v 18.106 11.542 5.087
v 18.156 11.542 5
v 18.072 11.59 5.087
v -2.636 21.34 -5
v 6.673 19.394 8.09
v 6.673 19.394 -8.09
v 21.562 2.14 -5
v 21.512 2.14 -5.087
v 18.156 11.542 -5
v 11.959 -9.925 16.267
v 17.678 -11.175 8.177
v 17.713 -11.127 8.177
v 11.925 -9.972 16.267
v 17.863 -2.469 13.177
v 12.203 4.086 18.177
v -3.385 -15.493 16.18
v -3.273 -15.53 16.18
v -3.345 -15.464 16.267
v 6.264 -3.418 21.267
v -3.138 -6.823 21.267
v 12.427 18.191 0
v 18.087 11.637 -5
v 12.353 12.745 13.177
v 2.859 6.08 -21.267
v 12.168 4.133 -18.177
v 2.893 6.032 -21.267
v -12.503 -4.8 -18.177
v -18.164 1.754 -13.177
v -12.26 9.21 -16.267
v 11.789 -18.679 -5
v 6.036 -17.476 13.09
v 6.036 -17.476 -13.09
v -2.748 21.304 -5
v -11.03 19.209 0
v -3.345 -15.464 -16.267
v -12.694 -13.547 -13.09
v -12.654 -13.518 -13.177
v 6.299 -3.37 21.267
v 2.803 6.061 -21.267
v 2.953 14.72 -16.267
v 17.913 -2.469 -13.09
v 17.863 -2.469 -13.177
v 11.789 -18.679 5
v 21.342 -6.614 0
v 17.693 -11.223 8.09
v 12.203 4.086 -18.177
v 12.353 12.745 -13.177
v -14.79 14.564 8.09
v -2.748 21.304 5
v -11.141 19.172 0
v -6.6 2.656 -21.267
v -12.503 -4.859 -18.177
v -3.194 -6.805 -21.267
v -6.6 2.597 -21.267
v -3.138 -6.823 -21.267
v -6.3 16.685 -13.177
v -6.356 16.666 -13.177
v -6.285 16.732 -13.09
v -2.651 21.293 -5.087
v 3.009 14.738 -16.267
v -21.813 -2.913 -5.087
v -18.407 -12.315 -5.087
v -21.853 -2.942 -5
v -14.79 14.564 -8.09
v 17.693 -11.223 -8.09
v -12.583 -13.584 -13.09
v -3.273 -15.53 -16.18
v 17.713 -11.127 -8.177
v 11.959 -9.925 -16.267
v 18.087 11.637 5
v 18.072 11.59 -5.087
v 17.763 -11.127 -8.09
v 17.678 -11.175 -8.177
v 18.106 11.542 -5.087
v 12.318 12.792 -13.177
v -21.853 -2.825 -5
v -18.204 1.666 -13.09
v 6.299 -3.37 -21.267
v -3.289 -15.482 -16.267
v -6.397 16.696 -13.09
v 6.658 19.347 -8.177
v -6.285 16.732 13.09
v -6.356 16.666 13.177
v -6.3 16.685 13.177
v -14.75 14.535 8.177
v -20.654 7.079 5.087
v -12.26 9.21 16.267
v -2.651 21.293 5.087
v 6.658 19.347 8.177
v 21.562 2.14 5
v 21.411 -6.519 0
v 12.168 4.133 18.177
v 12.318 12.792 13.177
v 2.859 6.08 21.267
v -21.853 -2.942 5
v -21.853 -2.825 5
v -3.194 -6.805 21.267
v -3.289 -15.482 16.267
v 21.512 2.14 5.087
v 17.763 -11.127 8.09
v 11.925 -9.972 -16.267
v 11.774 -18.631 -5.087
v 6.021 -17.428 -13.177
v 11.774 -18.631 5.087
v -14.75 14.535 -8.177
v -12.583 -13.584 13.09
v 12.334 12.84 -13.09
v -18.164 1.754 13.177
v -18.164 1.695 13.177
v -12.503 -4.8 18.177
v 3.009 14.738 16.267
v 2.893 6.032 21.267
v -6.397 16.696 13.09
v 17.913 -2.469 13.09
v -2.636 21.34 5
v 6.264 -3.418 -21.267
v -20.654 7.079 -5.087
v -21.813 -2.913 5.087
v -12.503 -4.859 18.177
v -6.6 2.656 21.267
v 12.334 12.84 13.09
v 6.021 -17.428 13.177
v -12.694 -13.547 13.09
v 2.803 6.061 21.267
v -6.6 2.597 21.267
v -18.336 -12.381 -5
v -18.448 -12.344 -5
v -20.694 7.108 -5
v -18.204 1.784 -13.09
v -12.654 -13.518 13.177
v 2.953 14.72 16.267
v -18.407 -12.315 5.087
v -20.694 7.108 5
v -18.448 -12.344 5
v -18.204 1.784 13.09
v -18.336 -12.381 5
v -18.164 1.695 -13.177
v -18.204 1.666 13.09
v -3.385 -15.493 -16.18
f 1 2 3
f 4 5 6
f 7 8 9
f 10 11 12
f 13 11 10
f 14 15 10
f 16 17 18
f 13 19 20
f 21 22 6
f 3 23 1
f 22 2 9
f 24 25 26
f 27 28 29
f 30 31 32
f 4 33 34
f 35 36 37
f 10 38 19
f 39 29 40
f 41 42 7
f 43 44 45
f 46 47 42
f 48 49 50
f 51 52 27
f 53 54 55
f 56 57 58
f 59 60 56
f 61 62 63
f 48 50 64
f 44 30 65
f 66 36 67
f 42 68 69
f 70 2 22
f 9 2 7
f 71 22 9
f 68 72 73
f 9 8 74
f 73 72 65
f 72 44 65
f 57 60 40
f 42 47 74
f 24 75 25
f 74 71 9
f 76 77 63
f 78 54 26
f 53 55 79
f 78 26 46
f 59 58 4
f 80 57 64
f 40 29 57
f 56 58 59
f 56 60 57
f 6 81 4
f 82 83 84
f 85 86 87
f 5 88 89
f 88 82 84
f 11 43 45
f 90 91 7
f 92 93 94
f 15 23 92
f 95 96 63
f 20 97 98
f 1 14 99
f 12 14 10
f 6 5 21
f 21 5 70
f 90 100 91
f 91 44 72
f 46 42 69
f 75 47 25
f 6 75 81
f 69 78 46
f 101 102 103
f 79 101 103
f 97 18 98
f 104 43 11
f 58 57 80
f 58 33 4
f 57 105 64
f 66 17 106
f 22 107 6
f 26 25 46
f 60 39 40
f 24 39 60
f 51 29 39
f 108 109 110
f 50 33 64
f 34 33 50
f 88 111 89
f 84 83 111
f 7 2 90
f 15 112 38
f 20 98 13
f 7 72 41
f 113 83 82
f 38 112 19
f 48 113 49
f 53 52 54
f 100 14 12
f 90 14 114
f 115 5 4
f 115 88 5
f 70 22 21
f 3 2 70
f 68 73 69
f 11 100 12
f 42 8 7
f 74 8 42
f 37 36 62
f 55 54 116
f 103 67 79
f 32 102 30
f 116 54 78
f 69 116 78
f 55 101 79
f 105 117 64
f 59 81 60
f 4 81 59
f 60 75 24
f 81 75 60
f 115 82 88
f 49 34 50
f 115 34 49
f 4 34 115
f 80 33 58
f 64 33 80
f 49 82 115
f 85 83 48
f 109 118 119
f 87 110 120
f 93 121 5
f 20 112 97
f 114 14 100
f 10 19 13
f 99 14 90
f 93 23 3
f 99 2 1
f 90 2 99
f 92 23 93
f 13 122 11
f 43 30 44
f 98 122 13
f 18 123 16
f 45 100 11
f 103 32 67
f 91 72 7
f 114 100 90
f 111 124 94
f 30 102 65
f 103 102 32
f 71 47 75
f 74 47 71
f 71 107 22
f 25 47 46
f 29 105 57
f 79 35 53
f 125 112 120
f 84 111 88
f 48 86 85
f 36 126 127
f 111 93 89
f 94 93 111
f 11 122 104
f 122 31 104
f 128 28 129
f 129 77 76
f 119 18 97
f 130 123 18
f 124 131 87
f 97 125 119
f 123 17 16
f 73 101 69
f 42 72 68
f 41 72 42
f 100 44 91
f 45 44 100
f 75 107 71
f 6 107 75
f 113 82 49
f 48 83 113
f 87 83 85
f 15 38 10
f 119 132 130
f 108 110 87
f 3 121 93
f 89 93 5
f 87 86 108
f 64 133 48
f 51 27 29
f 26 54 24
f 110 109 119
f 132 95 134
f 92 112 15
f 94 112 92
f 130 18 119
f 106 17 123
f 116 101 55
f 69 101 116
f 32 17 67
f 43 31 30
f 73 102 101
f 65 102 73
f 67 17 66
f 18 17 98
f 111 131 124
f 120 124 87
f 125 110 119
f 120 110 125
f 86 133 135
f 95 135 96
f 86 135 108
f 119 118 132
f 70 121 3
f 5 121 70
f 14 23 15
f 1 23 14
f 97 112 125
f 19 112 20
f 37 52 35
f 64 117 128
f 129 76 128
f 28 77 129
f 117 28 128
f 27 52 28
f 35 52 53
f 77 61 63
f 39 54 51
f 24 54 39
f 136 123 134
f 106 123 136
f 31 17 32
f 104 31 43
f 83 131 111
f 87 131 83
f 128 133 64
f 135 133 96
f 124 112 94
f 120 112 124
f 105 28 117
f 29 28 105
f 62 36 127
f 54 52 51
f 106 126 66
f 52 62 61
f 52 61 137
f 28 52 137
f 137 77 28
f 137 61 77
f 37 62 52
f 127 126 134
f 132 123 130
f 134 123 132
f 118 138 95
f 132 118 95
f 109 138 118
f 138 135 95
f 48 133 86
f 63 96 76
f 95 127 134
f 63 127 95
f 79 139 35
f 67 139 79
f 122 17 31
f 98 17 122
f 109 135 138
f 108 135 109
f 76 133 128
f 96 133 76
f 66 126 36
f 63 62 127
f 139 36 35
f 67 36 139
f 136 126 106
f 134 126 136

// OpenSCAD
// Auto-generated OpenSCAD file

    inner_points = 10*[[-1.836699607587161, -1.2285699091430797, -0.5000000000000988], [2.146184519456955, 0.21396464522266723, -0.4999999999998816], [-2.1772358223098434, -0.2883385086557597, -0.5000000000001185], [1.8056483047342733, 1.1541960457099871, -0.4999999999999012], [-1.8366996075872162, -1.2285699091430788, 0.4999999999999012], [2.1461845194569, 0.21396464522266823, 0.5000000000001185], [-2.1772358223098984, -0.2883385086557587, 0.4999999999998816], [1.8056483047342182, 1.154196045709988, 0.5000000000000988], [-0.3153732443086741, -0.677570739321549, -2.118033988749911], [0.6248581561786458, -0.33703452459886674, -2.1180339887498594], [-0.6559094590313566, 0.2626606611657711, -2.1180339887499304], [0.2843219414559636, 0.6031968758884533, -2.118033988749879], [-0.3153732443089066, -0.6775707393215448, 2.118033988749879], [0.6248581561784134, -0.3370345245988626, 2.1180339887499304], [-0.6559094590315889, 0.26266066116577524, 2.1180339887498594], [0.2843219414557311, 0.6031968758884575, 2.118033988749911], [1.1758573260000895, -1.8583608878772635, -0.49999999999993283], [-2.061336407064101, 0.7049224467561074, -0.500000000000113], [-0.2666772283656575, 2.124523239166853, -0.5000000000000159], [1.1758573260000345, -1.8583608878772626, 0.5000000000000672], [-2.061336407064156, 0.7049224467561084, 0.499999999999887], [-0.26667722836571245, 2.124523239166854, 0.49999999999998407], [2.131136622972155, -0.6519300139659565, 1.184490416110162e-13], [-1.1060571100920356, 1.911353320667414, -6.17776737251443e-14], [1.2396012384279405, 1.809627749799762, 6.709282429360799e-14], [-1.2463045333092315, -0.4829546239886549, -1.8090169943750145], [1.2152532304564871, 0.40858076055555986, -1.8090169943748804], [-1.24630453330943, -0.48295462398865135, 1.8090169943748804], [1.2152532304562886, 0.4085807605555634, 1.8090169943750145], [0.6005101482070487, -1.7380815138430665, -1.309016994374912], [-0.6315614510598482, 1.6637076504099721, -1.309016994374983], [0.6005101482069051, -1.7380815138430639, 1.309016994374983], [-0.6315614510599918, 1.6637076504099748, 1.309016994374912], [-1.2613524297940315, -1.3488492831772787, -1.3090169943750145], [1.7813002967627651, -0.24685094353421377, -1.3090169943748486], [-1.8123515996155641, 0.17247708010111973, -1.3090169943750463], [1.2303011269412325, 1.2744754197441843, -1.3090169943748804], [-1.2613524297941754, -1.348849283177276, 1.3090169943748804], [1.7813002967626212, -0.24685094353421122, 1.3090169943750463], [-1.812351599615708, 0.17247708010112228, 1.3090169943748486], [1.2303011269410886, 1.274475419744187, 1.3090169943750145], [-0.3304211407934745, -1.543465398510173, -1.6180339887499107], [1.190905222484924, -0.9924662286886403, -1.6180339887498278], [-1.2219565253376892, 0.9180923652555457, -1.618033988749962], [0.2993698379407091, 1.469091535077078, -1.6180339887498791], [-0.3304211407936521, -1.5434653985101696, 1.6180339887498791], [1.1909052224847463, -0.9924662286886372, 1.618033988749962], [-1.2219565253378668, 0.9180923652555488, 1.6180339887498278], [0.2993698379405315, 1.4690915350770812, 1.6180339887499107], [1.7662524002779645, -1.1127456027228375, -0.8090169943748485], [-1.4709413327862264, 1.450537731910533, -0.8090169943750288], [0.6642540606348998, 1.929907123833959, -0.809016994374912], [1.7662524002778757, -1.112745602722836, 0.8090169943750464], [-1.4709413327863152, 1.4505377319105348, 0.8090169943748661], [0.664254060634811, 1.9299071238339605, 0.8090169943749829]];

    outer_points = 10*[[1.12576446959325, -1.2306993530072232, -1.4846216484373451], [-1.1423570636659763, 1.9034473733016377, 0.24078291813028324], [0.5369108131957494, -1.9034473733016377, -1.0366691146380147], [-1.731210720063477, 1.2306993530072232, 0.6887354519296138], [1.731210720063477, -1.2306993530072232, -0.6887354519296138], [-0.5369108131957494, 1.9034473733016377, 1.0366691146380147], [1.1423570636659763, -1.9034473733016377, -0.24078291813028324], [-1.12576446959325, 1.2306993530072232, 1.4846216484373451], [-0.7202134771182586, -0.03356182928645268, -2.113346665479179], [-1.2556443401984863, 0.7063098495808671, -1.7060338990806576], [-1.3090671335157593, -0.7063098495808671, -1.6653941316798484], [-1.8444979965959871, 0.03356182928645268, -1.2580813652813272], [1.8444979965959871, -0.03356182928645268, 1.2580813652813272], [1.3090671335157593, 0.7063098495808671, 1.6653941316798484], [1.2556443401984863, -0.7063098495808671, 1.7060338990806576], [0.7202134771182586, 0.03356182928645268, 2.113346665479179], [0.6767735018743313, 1.7948390122814335, -1.1430654069882231], [-0.22922787002565134, -2.174290821629481, -0.4538523813764673], [-1.8176506154247858, -1.0549673334141139, 0.7544919768790133], [1.2822197523445582, 1.7948390122814335, -0.3471792104804918], [0.37621838044457556, -2.174290821629481, 0.34203381513126413], [-1.2122043649545589, -1.0549673334141139, 1.5503781733867446], [-0.1977840872008227, 2.2190790322251956, 0.1504582370241563], [-1.1037854591008052, -1.7500508016857188, 0.8396712626359121], [-1.739422974049132, 0.4578018492302146, 1.32321319585744], [-0.394374457196368, -0.9685046012940453, -1.9729509883124625], [-1.796150655366095, 0.9685046012940453, -0.9065923218293875], [1.796150655366095, -0.9685046012940453, 0.9065923218293875], [0.394374457196368, 0.9685046012940453, 1.9729509883124625], [0.27270684057678685, 1.2170126016446976, -1.8521823031333664], [-1.8577857026690232, -1.2170126016446976, -0.23147481050075225], [1.8577857026690232, 1.2170126016446976, 0.23147481050075225], [-0.27270684057678685, -1.2170126016446976, 1.8521823031333664], [0.5501985192687854, -0.6528729423704873, -2.0632756694185894], [-1.1824921509102135, 1.741402105071054, -0.7451838692494821], [-0.4025867111820227, -1.741402105071054, -1.3384732443846366], [-2.1352773813610217, 0.6528729423704873, -0.020381444215529232], [2.1352773813610217, -0.6528729423704873, 0.020381444215529232], [0.4025867111820227, 1.741402105071054, 1.3384732443846366], [1.1824921509102135, -1.741402105071054, 0.7451838692494821], [-0.5501985192687854, 0.6528729423704873, 2.0632756694185894], [0.22435949934689503, 0.28206982963710514, -2.203671346585306], [-0.6419858357426045, 1.4792073533578758, -1.5446254465007523], [-1.317279387501414, -1.4792073533578758, -1.0309163877520224], [-2.1836247225909133, -0.28206982963710514, -0.3718704876674688], [2.1836247225909133, 0.28206982963710514, 0.3718704876674688], [1.317279387501414, 1.4792073533578758, 1.0309163877520224], [0.6419858357426045, -1.4792073533578758, 1.5446254465007523], [-0.22435949934689503, -0.28206982963710514, 2.203671346585306], [-0.2379191744450599, 2.057033763994612, -0.8355085503556091], [-1.1439205463450426, -1.9120960699163028, -0.1462955247438532], [-2.1434896353466764, -0.1200245614065214, 0.6140962997122967], [0.7417134371769494, 2.057033763994612, 0.45226236677077825], [-0.16428793472303332, -1.9120960699163028, 1.1414753923825343], [-1.1638570237246673, -0.1200245614065214, 1.901867216838684]];

    // Convex hull for inner set (I)
    module inner_hull() {
        hull() {
            for (p = inner_points) {
                translate(p) sphere(r=0.1);
            }
        }
    }

    // Convex hull for outer set (O) minus inner hull (O \ I)
    module outer_minus_inner() {
        difference() {
            hull() {
                for (p = outer_points) {
                    translate(p) sphere(r=0.1);
                }
            }
            inner_hull(); // Subtract inner hull
        }
    }

    // Convex hull for outer set (O) minus all translated inner hulls
    module outer_minus_AllTranslationInner() {
        difference() {
            hull() {
                for (p = outer_points) {
                    translate(p) sphere(r=0.1);
                }
            }
            hull() {
                translate([0,0,50]) inner_hull();
                translate([0,0,-50]) inner_hull();
            }; // Subtract translated inner hulls
        }
    }

    // Difference between outer_minus_inner and outer_minus_AllTranslationInner
    module outer_minus_inner_diff() {
        difference() {
            // Outer minus inner
            difference() {
                hull() {
                    for (p = outer_points) {
                        translate(p) sphere(r=0.1);
                    }
                }
                inner_hull();
            }

            // Subtract Outer minus AllTranslationInner
            difference() {
                hull() {
                    for (p = outer_points) {
                        translate(p) sphere(r=0.1);
                    }
                }
                hull() {
                    translate([0,0,50]) inner_hull();
                    translate([0,0,-50]) inner_hull();
                };
            }
        }
    }

    // Rendering all with colors applied
    color([1, 0, 0, 0.5]) inner_hull(); // Transparent red
    
